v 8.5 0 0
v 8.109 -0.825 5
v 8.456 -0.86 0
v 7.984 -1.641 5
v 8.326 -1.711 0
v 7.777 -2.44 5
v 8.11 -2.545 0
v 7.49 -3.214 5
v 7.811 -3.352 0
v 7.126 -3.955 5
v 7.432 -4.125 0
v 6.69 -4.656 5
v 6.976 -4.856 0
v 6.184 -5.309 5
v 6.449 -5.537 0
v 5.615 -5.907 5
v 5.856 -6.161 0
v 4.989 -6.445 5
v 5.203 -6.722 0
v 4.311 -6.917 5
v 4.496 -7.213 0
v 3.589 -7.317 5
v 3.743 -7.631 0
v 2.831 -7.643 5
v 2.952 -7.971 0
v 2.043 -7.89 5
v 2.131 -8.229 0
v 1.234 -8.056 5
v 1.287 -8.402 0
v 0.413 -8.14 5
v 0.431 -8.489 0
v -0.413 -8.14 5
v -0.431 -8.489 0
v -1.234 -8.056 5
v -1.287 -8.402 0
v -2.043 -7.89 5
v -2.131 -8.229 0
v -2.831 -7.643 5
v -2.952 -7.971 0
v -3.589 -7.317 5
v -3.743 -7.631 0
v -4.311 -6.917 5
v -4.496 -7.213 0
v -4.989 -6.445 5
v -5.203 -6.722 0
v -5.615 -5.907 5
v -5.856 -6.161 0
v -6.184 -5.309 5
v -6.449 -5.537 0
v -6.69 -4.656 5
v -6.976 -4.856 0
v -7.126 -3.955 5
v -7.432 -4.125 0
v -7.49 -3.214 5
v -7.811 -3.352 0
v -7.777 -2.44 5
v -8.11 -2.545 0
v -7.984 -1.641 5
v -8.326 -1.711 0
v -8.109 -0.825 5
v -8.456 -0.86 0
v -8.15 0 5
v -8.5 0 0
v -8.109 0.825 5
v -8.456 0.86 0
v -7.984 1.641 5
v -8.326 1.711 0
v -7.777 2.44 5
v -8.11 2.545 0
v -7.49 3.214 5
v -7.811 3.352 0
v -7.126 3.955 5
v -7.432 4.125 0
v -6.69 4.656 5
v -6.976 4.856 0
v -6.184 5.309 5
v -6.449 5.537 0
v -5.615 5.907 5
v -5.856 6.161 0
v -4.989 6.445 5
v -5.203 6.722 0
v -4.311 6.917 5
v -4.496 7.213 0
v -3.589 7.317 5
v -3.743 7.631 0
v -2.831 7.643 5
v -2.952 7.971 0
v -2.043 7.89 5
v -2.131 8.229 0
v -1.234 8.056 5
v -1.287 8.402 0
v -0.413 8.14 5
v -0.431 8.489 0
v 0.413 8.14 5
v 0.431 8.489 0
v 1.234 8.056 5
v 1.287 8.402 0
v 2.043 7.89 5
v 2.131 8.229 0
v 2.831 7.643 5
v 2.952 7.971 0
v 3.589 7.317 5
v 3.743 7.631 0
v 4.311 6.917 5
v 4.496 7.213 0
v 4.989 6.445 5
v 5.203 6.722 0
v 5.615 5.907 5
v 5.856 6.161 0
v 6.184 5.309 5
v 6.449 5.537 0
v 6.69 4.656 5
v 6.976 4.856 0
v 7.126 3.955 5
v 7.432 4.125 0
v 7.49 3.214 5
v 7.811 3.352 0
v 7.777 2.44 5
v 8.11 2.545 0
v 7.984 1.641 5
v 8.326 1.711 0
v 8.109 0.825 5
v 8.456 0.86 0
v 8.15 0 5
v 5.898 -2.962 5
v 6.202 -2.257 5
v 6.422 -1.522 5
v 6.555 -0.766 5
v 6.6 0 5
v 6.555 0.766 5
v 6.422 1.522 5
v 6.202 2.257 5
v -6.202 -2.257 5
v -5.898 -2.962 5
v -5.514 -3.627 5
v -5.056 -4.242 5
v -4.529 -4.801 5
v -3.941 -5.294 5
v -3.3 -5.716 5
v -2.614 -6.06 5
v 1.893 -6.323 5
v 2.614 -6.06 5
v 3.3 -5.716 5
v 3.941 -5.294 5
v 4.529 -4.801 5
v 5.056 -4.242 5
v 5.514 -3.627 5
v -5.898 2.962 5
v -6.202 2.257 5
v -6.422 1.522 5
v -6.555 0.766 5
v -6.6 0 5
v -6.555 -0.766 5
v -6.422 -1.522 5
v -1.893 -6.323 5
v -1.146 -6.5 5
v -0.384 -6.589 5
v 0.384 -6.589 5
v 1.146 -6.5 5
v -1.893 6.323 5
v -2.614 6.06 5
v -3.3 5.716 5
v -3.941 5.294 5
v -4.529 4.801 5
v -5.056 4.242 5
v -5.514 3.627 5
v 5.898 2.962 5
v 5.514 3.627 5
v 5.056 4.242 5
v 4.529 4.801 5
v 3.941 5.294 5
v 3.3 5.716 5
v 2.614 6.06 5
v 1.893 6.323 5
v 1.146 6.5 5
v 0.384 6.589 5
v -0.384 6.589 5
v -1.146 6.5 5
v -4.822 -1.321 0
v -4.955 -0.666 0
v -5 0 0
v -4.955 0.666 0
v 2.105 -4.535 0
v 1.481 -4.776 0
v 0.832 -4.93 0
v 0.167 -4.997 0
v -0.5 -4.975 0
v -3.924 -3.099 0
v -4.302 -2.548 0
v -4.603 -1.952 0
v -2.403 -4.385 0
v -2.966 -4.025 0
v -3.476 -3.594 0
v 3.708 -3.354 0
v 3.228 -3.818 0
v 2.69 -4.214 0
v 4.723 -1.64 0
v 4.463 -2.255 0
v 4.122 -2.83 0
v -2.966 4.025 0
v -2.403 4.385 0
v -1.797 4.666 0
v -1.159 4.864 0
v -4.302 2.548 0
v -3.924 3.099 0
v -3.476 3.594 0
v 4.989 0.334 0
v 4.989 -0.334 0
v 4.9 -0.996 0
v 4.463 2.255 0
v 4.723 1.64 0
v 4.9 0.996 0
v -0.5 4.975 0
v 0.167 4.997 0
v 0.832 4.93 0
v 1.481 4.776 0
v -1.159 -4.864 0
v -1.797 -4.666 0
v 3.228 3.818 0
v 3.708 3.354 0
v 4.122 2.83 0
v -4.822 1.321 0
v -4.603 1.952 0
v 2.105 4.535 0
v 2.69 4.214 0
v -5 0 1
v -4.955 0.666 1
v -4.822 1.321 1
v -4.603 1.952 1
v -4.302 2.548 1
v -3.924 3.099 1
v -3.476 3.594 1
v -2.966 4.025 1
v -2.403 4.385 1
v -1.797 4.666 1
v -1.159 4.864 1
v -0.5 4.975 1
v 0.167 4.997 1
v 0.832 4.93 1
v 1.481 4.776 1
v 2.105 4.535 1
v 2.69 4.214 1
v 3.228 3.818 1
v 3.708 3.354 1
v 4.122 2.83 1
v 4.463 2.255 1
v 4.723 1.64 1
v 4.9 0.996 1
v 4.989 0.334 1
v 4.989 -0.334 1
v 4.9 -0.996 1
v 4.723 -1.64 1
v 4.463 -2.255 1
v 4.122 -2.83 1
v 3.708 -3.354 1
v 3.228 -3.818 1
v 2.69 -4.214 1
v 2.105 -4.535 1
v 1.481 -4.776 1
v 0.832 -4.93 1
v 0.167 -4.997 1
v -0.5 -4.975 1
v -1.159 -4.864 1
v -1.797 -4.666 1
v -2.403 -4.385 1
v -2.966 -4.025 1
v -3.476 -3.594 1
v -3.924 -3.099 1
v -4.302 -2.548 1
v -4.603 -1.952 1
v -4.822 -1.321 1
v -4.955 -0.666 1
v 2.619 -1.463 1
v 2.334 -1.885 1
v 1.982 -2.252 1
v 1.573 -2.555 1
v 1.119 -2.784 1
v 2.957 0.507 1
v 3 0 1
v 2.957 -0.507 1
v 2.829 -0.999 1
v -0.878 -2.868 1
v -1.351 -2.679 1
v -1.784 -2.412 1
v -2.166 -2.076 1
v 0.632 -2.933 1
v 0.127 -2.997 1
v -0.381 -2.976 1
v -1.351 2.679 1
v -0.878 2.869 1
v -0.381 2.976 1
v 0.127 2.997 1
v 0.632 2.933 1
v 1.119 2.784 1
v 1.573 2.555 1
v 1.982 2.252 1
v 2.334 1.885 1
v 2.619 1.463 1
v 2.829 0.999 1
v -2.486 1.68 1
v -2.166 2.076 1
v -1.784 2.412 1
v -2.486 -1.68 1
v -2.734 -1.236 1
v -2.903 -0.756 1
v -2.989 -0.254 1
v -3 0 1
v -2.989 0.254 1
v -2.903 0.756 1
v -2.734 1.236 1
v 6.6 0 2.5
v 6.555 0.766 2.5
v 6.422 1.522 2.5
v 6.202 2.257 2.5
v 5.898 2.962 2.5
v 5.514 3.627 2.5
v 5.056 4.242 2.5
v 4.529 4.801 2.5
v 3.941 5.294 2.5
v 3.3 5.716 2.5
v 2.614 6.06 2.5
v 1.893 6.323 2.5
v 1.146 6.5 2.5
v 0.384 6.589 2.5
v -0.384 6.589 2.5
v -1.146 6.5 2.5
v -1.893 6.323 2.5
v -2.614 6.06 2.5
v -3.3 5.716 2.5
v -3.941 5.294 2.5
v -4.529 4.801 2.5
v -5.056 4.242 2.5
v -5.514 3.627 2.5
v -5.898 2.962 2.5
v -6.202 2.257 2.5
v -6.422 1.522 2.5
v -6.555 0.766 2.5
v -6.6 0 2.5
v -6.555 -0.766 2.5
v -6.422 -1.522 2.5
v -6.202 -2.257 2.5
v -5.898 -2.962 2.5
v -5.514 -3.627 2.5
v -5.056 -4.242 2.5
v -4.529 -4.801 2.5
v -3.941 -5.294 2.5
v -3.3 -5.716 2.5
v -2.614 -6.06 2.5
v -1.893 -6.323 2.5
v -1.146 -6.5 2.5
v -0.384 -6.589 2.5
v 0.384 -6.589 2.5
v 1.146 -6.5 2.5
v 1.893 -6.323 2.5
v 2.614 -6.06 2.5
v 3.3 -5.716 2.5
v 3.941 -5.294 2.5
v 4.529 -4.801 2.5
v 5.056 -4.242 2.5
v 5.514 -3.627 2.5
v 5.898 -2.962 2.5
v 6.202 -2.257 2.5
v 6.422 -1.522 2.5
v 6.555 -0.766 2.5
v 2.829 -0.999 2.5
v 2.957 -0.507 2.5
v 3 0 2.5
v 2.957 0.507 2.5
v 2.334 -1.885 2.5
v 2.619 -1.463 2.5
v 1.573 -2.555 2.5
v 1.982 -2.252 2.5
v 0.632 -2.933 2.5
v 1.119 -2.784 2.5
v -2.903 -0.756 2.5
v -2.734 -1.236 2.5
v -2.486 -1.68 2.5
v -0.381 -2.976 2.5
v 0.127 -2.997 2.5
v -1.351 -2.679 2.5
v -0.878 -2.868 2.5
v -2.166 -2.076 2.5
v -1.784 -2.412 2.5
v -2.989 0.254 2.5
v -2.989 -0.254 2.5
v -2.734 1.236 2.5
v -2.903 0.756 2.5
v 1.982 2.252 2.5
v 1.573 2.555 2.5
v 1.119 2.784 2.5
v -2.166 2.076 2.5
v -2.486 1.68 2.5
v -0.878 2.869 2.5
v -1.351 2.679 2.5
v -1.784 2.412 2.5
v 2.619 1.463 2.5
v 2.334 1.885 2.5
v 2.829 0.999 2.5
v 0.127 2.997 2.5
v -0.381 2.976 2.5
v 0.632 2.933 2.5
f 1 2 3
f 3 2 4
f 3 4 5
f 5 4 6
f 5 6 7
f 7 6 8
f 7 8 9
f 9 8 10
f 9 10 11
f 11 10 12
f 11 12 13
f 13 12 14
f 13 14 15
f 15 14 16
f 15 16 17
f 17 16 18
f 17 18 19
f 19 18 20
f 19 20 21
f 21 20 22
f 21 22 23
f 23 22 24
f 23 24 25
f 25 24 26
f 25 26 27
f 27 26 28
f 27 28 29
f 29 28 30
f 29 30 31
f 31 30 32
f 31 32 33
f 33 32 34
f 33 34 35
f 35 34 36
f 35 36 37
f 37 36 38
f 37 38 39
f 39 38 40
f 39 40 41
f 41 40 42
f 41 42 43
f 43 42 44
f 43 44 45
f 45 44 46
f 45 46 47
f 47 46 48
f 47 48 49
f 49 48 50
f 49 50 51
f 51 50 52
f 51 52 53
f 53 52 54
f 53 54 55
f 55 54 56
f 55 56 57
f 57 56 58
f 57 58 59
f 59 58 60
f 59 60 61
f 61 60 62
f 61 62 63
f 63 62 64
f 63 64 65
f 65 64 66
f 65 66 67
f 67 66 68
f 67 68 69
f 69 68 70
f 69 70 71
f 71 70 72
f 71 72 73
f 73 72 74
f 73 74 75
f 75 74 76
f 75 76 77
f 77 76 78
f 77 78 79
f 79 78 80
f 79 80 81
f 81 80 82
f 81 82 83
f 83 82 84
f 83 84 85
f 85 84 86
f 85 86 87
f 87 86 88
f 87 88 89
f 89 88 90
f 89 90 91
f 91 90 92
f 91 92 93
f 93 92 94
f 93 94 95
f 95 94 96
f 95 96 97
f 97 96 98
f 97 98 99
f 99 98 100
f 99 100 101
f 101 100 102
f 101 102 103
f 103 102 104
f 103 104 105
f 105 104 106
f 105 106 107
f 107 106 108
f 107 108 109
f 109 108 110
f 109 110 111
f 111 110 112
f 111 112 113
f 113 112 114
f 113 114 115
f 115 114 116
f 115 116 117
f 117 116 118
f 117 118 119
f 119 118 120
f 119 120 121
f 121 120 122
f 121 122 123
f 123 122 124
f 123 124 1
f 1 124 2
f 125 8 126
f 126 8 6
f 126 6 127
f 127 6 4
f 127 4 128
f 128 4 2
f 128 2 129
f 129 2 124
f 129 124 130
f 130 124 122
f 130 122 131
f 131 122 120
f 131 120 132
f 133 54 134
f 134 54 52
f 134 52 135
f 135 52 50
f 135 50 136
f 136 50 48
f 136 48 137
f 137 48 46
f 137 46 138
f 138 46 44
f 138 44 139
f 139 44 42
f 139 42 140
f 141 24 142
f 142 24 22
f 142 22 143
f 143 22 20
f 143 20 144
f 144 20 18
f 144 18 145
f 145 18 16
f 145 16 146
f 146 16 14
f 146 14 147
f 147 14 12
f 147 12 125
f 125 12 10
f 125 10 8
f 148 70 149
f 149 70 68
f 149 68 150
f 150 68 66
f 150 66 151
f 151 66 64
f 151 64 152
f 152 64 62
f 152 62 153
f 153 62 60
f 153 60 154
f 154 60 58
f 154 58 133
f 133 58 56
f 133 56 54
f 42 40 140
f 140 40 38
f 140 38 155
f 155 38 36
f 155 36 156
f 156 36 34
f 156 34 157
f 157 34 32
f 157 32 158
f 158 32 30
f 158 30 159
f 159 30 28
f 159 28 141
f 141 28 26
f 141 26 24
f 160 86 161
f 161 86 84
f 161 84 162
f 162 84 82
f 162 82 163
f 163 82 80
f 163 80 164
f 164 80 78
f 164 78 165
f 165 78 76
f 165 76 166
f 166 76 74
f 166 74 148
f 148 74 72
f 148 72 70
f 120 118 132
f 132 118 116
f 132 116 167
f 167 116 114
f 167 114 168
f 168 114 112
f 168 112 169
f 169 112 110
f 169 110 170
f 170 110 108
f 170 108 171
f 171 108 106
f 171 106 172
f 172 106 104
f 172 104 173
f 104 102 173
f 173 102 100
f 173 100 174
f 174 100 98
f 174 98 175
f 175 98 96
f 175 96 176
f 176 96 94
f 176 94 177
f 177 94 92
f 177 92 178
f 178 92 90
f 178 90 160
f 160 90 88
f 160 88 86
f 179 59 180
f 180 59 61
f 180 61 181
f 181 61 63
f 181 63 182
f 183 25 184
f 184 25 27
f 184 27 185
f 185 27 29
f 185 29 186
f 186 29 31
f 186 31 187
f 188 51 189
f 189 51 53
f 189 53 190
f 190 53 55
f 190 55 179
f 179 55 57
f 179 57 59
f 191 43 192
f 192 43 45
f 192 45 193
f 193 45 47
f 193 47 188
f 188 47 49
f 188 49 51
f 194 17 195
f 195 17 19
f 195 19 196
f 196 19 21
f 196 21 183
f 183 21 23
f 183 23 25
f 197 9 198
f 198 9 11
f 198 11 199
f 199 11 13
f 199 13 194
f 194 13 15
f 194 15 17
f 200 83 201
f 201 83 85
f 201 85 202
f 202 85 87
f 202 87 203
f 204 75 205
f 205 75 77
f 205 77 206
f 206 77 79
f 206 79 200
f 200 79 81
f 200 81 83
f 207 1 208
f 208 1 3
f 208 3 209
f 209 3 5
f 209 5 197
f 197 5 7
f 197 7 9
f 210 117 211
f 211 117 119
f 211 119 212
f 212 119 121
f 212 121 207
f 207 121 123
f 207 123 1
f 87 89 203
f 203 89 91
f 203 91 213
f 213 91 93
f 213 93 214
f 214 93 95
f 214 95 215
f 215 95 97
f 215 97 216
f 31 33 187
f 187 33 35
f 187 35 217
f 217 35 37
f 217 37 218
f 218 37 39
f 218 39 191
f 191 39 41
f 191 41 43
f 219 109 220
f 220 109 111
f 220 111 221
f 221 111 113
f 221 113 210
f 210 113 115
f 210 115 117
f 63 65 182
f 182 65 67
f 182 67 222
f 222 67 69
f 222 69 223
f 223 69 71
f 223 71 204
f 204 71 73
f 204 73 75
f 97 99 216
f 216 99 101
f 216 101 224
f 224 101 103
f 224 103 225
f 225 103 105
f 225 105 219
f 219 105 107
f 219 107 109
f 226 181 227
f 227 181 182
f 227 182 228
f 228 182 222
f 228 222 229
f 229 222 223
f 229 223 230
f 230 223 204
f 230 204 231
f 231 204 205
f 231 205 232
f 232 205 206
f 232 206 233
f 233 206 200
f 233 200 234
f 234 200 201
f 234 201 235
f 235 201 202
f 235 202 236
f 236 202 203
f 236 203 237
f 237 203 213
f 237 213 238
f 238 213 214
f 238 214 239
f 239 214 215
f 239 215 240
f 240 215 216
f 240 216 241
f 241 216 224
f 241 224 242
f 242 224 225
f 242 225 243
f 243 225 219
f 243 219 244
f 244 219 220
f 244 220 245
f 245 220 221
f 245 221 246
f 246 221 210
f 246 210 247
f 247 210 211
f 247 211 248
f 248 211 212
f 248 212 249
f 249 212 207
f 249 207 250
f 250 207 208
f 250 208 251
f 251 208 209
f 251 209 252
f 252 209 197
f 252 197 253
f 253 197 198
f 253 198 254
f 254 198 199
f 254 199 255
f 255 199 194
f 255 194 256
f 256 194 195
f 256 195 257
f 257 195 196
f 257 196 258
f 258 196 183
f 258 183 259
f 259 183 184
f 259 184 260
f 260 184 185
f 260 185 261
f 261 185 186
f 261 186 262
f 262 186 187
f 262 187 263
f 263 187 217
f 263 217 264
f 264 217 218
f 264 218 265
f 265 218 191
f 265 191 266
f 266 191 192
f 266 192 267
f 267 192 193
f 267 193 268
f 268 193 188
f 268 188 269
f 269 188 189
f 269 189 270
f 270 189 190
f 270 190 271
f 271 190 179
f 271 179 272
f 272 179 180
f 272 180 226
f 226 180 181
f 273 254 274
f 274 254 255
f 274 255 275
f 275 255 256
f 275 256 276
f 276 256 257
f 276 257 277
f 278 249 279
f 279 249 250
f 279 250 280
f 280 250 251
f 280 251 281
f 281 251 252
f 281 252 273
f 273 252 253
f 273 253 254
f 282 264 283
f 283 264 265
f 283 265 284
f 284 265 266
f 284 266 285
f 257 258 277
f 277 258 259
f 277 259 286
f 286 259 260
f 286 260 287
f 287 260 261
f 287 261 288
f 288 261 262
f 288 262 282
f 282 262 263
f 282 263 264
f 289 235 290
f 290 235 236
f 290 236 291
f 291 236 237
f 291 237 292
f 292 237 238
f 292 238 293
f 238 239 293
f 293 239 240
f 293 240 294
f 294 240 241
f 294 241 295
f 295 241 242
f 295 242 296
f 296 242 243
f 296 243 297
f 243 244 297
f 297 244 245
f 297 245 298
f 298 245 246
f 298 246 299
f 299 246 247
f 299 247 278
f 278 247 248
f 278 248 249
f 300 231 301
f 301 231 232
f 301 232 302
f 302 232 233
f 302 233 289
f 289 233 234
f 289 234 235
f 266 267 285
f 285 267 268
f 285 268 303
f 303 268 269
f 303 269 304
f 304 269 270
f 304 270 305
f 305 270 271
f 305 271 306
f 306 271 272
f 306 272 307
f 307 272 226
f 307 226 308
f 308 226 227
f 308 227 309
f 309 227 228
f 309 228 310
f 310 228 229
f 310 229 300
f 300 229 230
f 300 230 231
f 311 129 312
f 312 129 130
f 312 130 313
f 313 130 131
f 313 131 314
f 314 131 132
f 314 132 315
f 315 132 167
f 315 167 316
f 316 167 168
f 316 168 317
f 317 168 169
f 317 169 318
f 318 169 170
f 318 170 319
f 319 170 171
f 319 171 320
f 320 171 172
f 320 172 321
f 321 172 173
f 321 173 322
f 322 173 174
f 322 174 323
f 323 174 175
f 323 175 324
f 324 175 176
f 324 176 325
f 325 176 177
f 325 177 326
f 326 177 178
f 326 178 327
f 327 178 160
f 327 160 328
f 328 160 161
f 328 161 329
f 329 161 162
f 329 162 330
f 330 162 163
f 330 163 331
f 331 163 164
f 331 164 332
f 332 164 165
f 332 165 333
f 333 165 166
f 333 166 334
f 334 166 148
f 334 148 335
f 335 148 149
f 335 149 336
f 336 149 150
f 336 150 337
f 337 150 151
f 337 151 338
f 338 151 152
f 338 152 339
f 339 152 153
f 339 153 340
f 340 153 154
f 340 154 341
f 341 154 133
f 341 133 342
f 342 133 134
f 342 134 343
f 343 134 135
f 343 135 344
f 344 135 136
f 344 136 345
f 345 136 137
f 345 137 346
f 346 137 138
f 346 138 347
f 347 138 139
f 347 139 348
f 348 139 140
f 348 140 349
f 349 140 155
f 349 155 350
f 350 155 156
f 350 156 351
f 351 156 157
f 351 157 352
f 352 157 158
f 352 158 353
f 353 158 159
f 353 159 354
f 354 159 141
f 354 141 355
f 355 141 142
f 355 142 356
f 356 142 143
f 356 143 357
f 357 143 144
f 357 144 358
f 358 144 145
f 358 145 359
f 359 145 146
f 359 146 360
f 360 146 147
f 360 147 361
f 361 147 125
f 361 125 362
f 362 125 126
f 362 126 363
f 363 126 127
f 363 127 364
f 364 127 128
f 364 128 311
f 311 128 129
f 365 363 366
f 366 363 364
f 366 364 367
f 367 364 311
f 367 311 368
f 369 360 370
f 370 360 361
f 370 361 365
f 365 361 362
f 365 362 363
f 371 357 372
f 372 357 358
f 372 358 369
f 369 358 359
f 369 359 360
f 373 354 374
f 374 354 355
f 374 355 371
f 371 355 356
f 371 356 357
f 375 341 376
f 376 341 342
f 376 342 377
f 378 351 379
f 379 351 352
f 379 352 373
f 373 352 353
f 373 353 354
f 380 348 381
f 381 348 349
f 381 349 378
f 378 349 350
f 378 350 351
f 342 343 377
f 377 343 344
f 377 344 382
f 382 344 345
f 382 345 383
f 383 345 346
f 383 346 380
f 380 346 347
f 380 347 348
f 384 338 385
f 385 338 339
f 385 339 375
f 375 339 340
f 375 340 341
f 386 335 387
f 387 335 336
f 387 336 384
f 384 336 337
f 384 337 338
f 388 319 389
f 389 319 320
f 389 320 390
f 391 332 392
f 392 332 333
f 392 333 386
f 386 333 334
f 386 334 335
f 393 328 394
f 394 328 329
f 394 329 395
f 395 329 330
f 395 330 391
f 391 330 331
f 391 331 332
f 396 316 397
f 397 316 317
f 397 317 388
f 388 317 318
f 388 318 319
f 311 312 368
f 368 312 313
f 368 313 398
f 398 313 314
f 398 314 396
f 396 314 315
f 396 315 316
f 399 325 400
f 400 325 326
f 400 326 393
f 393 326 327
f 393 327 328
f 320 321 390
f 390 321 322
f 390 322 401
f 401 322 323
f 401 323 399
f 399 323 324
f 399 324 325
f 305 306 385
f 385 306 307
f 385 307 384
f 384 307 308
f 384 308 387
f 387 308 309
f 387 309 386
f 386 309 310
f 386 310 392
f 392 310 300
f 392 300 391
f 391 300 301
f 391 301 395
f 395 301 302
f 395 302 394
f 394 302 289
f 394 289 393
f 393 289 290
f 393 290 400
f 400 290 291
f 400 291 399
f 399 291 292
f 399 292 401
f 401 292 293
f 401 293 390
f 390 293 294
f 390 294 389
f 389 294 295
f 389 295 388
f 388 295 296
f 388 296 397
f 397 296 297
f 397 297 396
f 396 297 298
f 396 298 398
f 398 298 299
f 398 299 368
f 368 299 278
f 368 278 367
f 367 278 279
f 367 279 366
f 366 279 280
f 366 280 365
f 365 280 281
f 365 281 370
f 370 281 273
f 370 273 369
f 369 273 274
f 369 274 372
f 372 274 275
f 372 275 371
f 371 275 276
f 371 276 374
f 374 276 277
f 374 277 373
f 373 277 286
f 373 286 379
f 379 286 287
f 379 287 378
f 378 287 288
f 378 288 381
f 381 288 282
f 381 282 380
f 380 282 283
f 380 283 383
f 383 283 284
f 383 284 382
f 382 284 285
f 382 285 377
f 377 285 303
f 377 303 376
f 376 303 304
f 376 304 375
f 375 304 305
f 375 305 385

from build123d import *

# Parameters (mm, degrees)
SKETCH_1_R               = 8.5
EXTRUDE_1_DEPTH          = 5
EXTRUDE_1_TAPER          = 4
SKETCH_3_R               = 5
CUT_EXTRUDE_1_DEPTH      = 1
SKETCH_4_R               = 6.6
CUT_EXTRUDE_2_DEPTH      = 2.5
CUT_EXTRUDE_3_DEPTH      = 13.278029158
CUT_EXTRUDE_3_DEPTH_BACK = 13.278029158
SKETCH_5_R               = 3


with BuildPart() as part:
    # Эскиз1 → Бобышка-Вытянуть1 (new body)
    with BuildSketch(Plane.XY):
        Circle(SKETCH_1_R)
    extrude(amount=EXTRUDE_1_DEPTH, taper=EXTRUDE_1_TAPER)

    # Эскиз3 → Вырез-Вытянуть1 (cut)
    with BuildSketch(Plane(origin=(0, 0, 0), x_dir=(-1, 0, 0), z_dir=(0, 0, -1))):
        Circle(SKETCH_3_R)
    extrude(amount=-CUT_EXTRUDE_1_DEPTH, mode=Mode.SUBTRACT)

    # Эскиз4 → Вырез-Вытянуть2 (cut)
    with BuildSketch(Plane.XY.offset(5)):
        Circle(SKETCH_4_R)
    extrude(amount=-CUT_EXTRUDE_2_DEPTH, mode=Mode.SUBTRACT)

    # Эскиз5 → Вырез-Вытянуть3 (cut, two sides: drawn at the far end of the back side and taken through both)
    with BuildSketch(Plane.XY.offset(2.5).offset(-CUT_EXTRUDE_3_DEPTH_BACK)):
        Circle(SKETCH_5_R)
    extrude(amount=CUT_EXTRUDE_3_DEPTH + CUT_EXTRUDE_3_DEPTH_BACK, mode=Mode.SUBTRACT)


solid = part.part
